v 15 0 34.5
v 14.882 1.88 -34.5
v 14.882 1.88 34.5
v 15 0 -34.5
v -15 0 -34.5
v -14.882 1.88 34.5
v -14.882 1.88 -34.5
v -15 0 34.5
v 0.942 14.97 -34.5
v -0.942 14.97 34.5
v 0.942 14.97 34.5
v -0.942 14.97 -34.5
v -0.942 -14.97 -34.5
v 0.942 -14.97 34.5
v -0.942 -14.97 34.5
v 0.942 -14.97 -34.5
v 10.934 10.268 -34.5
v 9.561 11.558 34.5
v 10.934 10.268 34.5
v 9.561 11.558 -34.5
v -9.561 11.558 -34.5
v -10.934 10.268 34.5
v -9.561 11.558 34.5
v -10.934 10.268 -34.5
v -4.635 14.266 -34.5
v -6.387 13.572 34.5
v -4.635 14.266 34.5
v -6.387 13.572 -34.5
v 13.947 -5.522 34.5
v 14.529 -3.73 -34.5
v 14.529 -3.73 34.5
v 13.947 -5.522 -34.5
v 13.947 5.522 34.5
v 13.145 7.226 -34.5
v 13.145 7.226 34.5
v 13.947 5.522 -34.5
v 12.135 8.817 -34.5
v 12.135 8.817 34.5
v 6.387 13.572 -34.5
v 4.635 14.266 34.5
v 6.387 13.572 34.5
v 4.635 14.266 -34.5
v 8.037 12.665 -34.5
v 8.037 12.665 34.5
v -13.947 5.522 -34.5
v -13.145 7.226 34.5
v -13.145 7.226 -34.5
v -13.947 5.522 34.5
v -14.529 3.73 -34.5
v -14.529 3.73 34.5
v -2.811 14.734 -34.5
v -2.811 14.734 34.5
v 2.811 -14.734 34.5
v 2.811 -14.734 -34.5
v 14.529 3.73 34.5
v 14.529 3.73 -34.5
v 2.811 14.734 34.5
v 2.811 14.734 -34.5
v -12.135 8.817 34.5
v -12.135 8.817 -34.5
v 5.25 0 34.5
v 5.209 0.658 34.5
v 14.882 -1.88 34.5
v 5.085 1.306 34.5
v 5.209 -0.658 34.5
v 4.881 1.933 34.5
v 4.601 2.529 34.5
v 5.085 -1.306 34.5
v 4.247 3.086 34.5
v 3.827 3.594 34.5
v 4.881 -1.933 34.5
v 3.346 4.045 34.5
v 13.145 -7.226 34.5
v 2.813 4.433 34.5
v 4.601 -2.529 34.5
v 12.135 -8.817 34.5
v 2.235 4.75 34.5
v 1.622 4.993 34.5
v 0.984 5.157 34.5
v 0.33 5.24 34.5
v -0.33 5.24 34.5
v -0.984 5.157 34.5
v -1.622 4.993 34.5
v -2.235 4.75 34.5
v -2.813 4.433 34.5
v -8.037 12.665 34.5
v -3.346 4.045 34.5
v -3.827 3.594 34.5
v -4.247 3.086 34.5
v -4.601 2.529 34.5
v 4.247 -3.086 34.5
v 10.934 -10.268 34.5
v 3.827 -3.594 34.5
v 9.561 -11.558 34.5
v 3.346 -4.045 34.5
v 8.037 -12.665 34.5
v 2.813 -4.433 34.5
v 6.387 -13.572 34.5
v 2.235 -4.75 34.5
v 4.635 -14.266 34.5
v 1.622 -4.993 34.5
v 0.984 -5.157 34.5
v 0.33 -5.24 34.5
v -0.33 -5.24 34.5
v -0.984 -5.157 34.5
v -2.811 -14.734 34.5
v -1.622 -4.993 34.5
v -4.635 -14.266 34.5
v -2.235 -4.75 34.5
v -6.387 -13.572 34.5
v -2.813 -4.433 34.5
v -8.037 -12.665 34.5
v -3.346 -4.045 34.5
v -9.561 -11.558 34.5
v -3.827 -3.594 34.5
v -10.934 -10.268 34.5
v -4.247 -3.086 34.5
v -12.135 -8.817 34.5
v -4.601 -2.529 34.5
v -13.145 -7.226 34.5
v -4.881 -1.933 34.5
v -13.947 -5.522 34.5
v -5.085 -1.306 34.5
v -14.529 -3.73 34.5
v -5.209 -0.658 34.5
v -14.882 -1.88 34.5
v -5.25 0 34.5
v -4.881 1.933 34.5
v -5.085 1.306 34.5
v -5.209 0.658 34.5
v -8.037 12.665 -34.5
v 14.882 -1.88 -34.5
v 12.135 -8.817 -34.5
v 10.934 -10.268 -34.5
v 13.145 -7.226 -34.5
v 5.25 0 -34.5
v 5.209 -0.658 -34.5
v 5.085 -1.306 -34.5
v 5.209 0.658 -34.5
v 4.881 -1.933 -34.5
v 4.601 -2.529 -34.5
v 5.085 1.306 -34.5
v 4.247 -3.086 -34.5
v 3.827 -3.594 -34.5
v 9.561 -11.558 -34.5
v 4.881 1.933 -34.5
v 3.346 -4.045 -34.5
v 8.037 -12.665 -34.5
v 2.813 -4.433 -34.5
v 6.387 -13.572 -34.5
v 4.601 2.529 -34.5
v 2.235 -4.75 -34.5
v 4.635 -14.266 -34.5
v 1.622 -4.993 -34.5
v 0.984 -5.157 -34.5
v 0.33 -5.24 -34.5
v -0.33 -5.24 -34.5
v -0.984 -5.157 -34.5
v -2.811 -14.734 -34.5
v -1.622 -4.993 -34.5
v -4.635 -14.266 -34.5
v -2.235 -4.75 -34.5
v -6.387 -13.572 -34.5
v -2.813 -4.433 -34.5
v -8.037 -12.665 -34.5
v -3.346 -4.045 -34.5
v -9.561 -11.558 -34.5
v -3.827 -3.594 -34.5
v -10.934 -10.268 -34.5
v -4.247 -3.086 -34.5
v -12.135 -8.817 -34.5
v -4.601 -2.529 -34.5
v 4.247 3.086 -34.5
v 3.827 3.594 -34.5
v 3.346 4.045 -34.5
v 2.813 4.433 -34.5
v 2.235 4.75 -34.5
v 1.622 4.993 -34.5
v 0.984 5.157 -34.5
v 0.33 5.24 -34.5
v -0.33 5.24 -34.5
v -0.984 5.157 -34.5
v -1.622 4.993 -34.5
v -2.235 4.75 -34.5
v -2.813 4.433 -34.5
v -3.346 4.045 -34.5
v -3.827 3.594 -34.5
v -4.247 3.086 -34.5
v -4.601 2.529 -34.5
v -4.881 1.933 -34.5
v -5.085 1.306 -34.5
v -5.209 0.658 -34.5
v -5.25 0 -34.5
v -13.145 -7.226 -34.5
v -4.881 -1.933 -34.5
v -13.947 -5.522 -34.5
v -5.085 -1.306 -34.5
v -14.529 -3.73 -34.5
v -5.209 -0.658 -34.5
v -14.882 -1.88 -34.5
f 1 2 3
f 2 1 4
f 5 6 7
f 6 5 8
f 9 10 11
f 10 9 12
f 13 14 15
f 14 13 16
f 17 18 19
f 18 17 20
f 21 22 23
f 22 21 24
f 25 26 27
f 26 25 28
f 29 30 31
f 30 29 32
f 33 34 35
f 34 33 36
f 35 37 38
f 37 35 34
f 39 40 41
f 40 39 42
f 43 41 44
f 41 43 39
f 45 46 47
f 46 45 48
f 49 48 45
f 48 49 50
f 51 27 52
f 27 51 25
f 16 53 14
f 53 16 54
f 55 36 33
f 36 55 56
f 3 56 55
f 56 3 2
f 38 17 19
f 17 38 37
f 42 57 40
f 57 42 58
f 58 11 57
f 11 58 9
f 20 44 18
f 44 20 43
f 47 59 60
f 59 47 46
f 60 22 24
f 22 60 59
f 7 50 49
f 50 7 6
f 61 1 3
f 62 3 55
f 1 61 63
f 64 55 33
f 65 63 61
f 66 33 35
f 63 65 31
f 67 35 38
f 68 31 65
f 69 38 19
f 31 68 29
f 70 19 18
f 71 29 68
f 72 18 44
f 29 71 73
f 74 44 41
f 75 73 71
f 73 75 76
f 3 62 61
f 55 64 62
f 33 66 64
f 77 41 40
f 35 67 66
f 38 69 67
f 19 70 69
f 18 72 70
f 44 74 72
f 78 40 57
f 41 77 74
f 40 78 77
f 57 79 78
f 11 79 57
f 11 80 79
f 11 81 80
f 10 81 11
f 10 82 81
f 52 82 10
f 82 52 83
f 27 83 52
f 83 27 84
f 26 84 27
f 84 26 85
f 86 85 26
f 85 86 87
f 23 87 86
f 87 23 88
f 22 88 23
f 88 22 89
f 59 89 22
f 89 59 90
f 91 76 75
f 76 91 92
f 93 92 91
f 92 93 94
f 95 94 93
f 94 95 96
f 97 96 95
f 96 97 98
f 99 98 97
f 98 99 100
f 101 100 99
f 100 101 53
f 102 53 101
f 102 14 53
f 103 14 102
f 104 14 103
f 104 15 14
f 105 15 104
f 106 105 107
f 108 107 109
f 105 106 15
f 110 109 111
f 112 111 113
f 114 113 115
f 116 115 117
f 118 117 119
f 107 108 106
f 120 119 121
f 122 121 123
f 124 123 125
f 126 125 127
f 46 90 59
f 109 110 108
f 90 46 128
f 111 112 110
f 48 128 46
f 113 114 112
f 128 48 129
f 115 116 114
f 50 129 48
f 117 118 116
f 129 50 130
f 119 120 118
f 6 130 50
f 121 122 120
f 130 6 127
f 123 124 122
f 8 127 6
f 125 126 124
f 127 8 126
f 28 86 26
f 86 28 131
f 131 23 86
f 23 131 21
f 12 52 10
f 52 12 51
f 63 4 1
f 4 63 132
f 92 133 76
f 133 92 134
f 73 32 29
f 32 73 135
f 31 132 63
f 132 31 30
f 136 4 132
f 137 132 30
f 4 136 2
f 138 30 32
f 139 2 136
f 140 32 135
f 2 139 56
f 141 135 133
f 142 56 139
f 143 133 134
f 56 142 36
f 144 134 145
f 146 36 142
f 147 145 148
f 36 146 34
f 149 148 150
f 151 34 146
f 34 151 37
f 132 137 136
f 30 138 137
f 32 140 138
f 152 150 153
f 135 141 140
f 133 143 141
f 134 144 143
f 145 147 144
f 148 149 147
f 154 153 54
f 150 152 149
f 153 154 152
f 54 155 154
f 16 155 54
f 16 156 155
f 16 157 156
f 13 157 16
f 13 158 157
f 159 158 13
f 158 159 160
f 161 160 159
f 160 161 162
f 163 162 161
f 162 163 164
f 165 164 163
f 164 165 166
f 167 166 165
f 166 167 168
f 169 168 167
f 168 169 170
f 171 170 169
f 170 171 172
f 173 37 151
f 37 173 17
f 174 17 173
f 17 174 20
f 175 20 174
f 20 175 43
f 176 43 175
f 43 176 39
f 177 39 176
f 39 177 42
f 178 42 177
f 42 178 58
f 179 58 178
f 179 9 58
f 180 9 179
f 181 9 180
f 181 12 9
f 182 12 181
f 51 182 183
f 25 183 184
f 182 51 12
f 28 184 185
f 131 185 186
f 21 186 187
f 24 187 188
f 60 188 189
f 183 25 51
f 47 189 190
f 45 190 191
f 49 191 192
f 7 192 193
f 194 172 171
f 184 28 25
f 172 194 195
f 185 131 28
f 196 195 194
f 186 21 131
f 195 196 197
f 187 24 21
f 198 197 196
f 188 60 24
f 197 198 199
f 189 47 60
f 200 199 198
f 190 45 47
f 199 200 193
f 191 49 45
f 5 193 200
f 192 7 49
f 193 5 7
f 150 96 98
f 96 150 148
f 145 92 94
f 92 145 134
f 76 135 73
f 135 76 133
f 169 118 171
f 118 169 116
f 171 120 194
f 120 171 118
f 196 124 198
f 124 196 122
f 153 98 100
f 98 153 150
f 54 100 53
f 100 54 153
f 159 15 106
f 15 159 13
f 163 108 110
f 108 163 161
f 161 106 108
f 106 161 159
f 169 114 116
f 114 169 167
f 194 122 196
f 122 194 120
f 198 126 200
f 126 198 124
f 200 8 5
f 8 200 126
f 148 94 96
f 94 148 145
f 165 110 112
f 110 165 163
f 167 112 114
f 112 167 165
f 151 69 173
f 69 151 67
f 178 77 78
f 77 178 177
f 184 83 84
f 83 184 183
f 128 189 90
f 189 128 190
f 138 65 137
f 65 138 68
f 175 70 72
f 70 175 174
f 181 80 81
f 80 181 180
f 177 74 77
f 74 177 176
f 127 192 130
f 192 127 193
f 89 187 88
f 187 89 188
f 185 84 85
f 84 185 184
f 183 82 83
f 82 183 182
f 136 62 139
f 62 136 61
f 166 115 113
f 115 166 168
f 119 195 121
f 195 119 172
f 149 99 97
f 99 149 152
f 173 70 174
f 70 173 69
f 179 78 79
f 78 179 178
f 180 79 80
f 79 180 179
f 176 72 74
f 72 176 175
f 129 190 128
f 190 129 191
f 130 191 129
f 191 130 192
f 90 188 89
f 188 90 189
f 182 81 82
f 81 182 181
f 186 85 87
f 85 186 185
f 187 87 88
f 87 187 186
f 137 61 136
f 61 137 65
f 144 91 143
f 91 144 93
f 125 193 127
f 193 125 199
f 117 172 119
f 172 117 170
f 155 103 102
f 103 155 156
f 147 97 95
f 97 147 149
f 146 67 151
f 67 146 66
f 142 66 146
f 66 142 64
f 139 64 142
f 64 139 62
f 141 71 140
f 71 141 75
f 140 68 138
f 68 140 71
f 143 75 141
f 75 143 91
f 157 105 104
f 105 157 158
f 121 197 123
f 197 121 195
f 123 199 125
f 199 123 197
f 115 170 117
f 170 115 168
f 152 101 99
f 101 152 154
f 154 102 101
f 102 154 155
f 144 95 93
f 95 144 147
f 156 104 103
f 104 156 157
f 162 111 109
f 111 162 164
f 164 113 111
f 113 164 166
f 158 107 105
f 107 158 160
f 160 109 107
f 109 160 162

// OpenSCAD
$fn = 50;


difference() {
	union() {
		translate(v = [0, 0, -34.5000000000]) {
			cylinder(h = 69, r = 15.0000000000);
		}
	}
	union() {
		translate(v = [0, 0, -100.0000000000]) {
			cylinder(h = 200, r = 5.2500000000);
		}
	}
}
